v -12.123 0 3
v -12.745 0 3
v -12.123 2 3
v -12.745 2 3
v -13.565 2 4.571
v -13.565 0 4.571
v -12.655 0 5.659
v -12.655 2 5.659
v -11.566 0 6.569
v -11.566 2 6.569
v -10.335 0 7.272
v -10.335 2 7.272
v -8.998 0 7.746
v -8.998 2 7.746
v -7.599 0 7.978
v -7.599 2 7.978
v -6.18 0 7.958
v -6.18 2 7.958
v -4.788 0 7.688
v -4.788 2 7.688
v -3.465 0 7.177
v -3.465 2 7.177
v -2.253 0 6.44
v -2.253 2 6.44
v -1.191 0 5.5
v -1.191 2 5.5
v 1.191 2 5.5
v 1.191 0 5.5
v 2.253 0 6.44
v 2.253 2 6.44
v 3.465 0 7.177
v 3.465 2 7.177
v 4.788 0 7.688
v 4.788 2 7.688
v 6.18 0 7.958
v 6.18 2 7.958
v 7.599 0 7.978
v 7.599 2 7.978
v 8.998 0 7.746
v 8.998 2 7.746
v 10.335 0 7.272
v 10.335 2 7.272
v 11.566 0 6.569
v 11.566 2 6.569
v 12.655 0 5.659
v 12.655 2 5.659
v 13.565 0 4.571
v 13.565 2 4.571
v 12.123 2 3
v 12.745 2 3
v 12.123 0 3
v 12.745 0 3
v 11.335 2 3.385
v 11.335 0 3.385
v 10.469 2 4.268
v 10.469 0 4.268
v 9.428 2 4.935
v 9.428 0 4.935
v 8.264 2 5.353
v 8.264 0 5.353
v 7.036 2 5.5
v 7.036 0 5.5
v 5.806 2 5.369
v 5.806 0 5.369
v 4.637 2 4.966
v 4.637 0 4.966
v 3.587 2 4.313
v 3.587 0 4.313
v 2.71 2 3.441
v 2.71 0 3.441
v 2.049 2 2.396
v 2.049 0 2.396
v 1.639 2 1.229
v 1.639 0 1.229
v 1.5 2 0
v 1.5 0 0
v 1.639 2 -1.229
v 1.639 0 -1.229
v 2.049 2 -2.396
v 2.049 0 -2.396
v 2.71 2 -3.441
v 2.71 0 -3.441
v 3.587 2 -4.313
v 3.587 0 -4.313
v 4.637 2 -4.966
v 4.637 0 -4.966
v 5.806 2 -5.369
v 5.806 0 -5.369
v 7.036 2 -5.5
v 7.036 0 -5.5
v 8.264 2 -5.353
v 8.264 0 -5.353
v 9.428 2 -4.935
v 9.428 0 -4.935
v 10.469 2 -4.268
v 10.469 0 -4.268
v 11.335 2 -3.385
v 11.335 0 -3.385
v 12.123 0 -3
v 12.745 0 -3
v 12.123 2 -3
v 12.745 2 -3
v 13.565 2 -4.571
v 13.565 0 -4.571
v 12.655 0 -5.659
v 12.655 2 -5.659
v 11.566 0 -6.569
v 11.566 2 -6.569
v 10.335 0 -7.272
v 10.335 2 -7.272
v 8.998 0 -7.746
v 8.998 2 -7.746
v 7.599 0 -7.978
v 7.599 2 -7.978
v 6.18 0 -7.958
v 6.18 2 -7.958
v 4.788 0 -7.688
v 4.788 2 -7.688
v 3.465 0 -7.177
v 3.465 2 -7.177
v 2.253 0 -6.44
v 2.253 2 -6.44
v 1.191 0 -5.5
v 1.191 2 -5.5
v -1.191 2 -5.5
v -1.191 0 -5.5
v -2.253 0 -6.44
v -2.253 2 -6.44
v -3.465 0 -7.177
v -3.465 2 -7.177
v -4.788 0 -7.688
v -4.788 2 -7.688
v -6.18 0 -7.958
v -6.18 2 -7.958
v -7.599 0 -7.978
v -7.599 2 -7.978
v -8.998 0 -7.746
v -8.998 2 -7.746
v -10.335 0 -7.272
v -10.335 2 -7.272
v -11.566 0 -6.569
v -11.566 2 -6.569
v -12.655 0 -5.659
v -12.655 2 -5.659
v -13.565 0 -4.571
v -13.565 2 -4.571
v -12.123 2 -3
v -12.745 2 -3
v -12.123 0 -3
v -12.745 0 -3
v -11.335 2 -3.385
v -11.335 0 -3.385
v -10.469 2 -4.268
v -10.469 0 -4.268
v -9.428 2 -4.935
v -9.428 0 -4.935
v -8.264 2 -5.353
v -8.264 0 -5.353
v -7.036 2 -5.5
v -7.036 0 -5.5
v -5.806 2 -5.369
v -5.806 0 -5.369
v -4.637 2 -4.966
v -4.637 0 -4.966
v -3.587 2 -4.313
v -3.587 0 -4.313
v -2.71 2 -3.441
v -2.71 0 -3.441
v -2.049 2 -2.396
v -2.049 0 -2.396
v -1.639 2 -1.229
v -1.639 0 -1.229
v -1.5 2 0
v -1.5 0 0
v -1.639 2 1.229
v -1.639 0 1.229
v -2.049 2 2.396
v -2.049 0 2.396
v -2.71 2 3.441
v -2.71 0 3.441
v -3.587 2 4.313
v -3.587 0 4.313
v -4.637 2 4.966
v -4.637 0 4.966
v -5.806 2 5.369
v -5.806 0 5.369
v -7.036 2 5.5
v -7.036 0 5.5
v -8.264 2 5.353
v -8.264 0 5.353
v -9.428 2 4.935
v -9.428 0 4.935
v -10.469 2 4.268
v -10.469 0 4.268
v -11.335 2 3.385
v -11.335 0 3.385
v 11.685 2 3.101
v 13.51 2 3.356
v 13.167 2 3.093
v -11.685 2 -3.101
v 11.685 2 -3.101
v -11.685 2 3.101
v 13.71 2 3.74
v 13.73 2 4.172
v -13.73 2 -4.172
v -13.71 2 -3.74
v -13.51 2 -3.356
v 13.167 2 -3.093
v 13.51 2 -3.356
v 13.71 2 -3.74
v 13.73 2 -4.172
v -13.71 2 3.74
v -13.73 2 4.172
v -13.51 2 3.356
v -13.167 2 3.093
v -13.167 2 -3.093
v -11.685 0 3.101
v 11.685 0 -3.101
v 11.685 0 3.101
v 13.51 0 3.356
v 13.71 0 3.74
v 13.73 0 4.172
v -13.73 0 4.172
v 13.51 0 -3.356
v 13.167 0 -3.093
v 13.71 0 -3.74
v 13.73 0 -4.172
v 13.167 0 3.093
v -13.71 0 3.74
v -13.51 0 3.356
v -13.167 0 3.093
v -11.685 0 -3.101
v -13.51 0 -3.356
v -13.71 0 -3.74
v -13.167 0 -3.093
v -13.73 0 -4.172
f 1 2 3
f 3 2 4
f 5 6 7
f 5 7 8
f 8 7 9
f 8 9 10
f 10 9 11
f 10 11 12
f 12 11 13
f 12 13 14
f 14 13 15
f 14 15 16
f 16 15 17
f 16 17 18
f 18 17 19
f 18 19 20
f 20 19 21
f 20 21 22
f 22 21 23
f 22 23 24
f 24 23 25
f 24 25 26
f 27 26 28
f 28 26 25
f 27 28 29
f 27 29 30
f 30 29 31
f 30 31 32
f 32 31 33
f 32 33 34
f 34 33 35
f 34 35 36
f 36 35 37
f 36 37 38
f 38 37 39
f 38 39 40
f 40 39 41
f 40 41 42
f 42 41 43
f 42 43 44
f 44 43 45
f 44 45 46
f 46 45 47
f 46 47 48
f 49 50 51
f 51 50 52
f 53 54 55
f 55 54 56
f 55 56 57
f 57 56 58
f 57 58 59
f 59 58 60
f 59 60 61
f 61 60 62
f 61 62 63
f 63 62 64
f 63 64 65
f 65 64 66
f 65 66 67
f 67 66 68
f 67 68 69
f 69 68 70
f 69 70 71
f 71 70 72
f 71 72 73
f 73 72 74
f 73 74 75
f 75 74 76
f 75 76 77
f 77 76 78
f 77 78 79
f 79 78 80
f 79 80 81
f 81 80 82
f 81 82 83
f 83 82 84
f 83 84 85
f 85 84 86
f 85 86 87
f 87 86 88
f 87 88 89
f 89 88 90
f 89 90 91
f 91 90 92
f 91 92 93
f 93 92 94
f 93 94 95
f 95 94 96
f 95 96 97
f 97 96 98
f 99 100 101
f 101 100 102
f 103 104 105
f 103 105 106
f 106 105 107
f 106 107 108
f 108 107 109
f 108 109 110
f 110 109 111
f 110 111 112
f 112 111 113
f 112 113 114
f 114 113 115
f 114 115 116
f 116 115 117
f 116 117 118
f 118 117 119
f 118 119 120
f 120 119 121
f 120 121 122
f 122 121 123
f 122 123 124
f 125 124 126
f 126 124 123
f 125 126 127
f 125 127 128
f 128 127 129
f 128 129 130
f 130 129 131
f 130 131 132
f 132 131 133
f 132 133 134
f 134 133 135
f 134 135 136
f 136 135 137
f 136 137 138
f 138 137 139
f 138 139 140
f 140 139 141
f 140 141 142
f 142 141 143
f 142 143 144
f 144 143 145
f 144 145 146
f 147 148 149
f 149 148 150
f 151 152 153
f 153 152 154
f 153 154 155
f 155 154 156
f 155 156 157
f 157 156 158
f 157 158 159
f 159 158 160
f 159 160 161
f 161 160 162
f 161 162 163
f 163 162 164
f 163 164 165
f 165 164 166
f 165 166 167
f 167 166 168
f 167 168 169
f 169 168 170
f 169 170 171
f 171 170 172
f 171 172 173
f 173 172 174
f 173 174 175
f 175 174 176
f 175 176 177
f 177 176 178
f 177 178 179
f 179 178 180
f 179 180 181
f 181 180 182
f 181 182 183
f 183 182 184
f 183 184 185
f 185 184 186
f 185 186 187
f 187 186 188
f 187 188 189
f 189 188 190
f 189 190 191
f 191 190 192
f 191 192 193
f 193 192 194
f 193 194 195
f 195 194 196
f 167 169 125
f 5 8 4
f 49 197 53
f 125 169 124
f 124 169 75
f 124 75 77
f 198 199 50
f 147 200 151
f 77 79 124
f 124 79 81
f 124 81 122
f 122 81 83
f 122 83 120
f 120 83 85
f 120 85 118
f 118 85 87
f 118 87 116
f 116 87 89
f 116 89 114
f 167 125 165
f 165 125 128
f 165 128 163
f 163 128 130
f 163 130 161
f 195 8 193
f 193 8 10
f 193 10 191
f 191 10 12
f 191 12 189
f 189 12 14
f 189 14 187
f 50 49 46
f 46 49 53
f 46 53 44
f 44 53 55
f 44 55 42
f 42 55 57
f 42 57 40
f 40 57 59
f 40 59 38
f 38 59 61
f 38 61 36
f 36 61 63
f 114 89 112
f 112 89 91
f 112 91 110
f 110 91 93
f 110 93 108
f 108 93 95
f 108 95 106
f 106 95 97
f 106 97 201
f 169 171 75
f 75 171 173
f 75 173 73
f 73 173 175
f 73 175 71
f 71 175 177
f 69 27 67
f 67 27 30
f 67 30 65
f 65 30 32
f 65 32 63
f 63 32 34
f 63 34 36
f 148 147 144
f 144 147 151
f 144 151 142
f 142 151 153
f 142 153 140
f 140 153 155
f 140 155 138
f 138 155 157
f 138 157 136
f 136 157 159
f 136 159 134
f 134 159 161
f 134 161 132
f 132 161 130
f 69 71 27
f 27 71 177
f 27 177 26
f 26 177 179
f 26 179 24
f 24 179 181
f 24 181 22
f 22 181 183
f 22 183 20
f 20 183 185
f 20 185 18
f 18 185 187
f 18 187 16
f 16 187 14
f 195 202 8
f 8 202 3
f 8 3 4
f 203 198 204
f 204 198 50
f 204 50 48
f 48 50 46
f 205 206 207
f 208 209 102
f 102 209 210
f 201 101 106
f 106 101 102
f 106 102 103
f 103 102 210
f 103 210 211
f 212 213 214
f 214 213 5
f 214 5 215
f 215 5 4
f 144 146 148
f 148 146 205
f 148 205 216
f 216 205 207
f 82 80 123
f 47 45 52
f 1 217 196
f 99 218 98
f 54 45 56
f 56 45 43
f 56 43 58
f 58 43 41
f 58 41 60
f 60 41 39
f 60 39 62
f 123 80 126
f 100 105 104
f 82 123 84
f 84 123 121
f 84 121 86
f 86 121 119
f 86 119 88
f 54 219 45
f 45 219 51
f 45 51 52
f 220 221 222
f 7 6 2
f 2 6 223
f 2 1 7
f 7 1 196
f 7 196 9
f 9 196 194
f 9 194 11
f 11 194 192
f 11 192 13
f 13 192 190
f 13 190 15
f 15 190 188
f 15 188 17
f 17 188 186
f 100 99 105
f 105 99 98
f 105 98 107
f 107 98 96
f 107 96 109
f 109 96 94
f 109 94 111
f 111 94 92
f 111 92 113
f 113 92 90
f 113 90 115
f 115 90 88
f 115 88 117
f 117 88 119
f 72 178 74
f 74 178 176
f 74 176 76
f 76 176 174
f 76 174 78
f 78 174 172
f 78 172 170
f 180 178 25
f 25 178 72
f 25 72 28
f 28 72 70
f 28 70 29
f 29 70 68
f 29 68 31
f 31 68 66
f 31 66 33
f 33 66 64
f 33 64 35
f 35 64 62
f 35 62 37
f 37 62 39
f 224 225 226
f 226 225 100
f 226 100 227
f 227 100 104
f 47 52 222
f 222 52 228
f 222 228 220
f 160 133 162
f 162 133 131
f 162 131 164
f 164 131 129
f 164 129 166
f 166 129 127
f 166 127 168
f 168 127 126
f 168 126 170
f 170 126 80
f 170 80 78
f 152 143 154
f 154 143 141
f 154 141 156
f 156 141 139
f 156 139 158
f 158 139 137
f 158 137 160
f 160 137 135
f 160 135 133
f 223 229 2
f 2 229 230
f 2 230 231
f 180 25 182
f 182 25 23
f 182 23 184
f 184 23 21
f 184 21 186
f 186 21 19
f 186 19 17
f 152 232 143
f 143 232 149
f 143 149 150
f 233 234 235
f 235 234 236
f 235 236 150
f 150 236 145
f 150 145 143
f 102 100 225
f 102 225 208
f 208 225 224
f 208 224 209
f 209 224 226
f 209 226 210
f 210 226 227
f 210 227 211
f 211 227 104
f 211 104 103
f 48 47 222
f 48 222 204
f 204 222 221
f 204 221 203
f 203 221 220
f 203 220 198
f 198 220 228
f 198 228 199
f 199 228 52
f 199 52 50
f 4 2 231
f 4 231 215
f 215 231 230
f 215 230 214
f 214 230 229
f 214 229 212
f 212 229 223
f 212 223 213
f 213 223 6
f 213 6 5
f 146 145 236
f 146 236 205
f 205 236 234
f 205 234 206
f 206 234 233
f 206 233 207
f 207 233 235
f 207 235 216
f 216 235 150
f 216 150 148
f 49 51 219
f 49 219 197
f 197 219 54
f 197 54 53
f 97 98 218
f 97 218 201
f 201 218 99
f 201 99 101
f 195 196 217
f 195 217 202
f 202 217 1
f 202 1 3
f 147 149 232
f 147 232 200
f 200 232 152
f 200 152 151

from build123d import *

# Parameters (mm, degrees)
BOSS_EXTRUDE1_DEPTH = 2
FILLET1_R           = 1
FILLET2_R           = 1


with BuildPart() as part:
    # Sketch1 → Boss-Extrude1 (new body)
    with BuildSketch(Plane(origin=(0, 0, 0), x_dir=(1, 0, 0), z_dir=(0, 1, 0))):
        with BuildLine():
            Line((11.609772229, 3), (14.416198487, 3))
            ThreePointArc((14.416198487, 3), (9.671814624, 7.540650278), (3.127016654, 7))
            Line((3.127016654, 7), (3.127016654, 5.5))
            Line((3.127016654, 5.5), (7, 5.5))
            ThreePointArc((7, 5.5), (9.62202212, 4.834769901), (11.609772229, 3))
        make_face()
        with BuildLine():
            Line((3.127016654, -5.5), (3.127016654, -7))
            ThreePointArc((3.127016654, -7), (9.671814624, -7.540650278), (14.416198487, -3))
            Line((14.416198487, -3), (11.609772229, -3))
            ThreePointArc((11.609772229, -3), (9.62202212, -4.834769901), (7, -5.5))
            Line((7, -5.5), (3.127016654, -5.5))
        make_face()
        with BuildLine():
            Line((3.127016654, -5.5), (1.190524981, -5.5))
            ThreePointArc((1.190524981, -5.5), (2.101020514, -6.32455532), (3.127016654, -7))
            Line((3.127016654, -7), (3.127016654, -5.5))
        make_face()
        with BuildLine():
            ThreePointArc((0, -3.872983346), (0.543804652, -4.72414454), (1.190524981, -5.5))
            Line((1.190524981, -5.5), (3.127016654, -5.5))
            Line((3.127016654, -5.5), (3.127016654, -3.905124838))
            ThreePointArc((3.127016654, -3.905124838), (2.734545947, -3.472160958), (2.390227771, -3))
            Line((2.390227771, -3), (0.416198487, -3))
            ThreePointArc((0.416198487, -3), (0.221303185, -3.442786708), (0, -3.872983346))
        make_face()
        with BuildLine():
            ThreePointArc((1, 0), (0.85269342, -1.5281381), (0.416198487, -3))
            Line((0.416198487, -3), (2.390227771, -3))
            ThreePointArc((2.390227771, -3), (1.5, 0), (2.390227771, 3))
            Line((2.390227771, 3), (0.416198487, 3))
            ThreePointArc((0.416198487, 3), (0.85269342, 1.5281381), (1, 0))
        make_face()
        with BuildLine():
            ThreePointArc((0, 3.872983346), (0.221303185, 3.442786708), (0.416198487, 3))
            Line((0.416198487, 3), (2.390227771, 3))
            ThreePointArc((2.390227771, 3), (2.734545947, 3.472160958), (3.127016654, 3.905124838))
            Line((3.127016654, 3.905124838), (3.127016654, 5.5))
            Line((3.127016654, 5.5), (1.190524981, 5.5))
            ThreePointArc((1.190524981, 5.5), (0.543804652, 4.72414454), (0, 3.872983346))
        make_face()
        with BuildLine():
            Line((1.190524981, 5.5), (-1.190524981, 5.5))
            ThreePointArc((-1.190524981, 5.5), (-0.543804652, 4.72414454), (0, 3.872983346))
            ThreePointArc((0, 3.872983346), (0.543804652, 4.72414454), (1.190524981, 5.5))
        make_face()
        with BuildLine():
            Line((-1.190524981, 5.5), (-3.127016654, 5.5))
            Line((-3.127016654, 5.5), (-3.127016654, 3.905124838))
            ThreePointArc((-3.127016654, 3.905124838), (-2.734545947, 3.472160958), (-2.390227771, 3))
            Line((-2.390227771, 3), (-0.416198487, 3))
            ThreePointArc((-0.416198487, 3), (-0.221303185, 3.442786708), (0, 3.872983346))
            ThreePointArc((0, 3.872983346), (-0.543804652, 4.72414454), (-1.190524981, 5.5))
        make_face()
        with BuildLine():
            ThreePointArc((-1.5, 0), (-1.727251795, -1.564648961), (-2.390227771, -3))
            Line((-2.390227771, -3), (-0.416198487, -3))
            ThreePointArc((-0.416198487, -3), (-1, 0), (-0.416198487, 3))
            Line((-0.416198487, 3), (-2.390227771, 3))
            ThreePointArc((-2.390227771, 3), (-1.727251795, 1.564648961), (-1.5, 0))
        make_face()
        with BuildLine():
            Line((-3.127016654, -3.905124838), (-3.127016654, -5.5))
            Line((-3.127016654, -5.5), (-1.190524981, -5.5))
            ThreePointArc((-1.190524981, -5.5), (-0.543804652, -4.72414454), (0, -3.872983346))
            ThreePointArc((0, -3.872983346), (-0.221303185, -3.442786708), (-0.416198487, -3))
            Line((-0.416198487, -3), (-2.390227771, -3))
            ThreePointArc((-2.390227771, -3), (-2.734545947, -3.472160958), (-3.127016654, -3.905124838))
        make_face()
        with BuildLine():
            ThreePointArc((0, -3.872983346), (-0.543804652, -4.72414454), (-1.190524981, -5.5))
            Line((-1.190524981, -5.5), (1.190524981, -5.5))
            ThreePointArc((1.190524981, -5.5), (0.543804652, -4.72414454), (0, -3.872983346))
        make_face()
        with BuildLine():
            ThreePointArc((-0.416198487, 3), (-1, 0), (-0.416198487, -3))
            Line((-0.416198487, -3), (0.416198487, -3))
            ThreePointArc((0.416198487, -3), (0.85269342, -1.5281381), (1, 0))
            ThreePointArc((1, 0), (0.85269342, 1.5281381), (0.416198487, 3))
            Line((0.416198487, 3), (-0.416198487, 3))
        make_face()
        with BuildLine():
            ThreePointArc((0, 3.872983346), (-0.221303185, 3.442786708), (-0.416198487, 3))
            Line((-0.416198487, 3), (0.416198487, 3))
            ThreePointArc((0.416198487, 3), (0.221303185, 3.442786708), (0, 3.872983346))
        make_face()
        with BuildLine():
            ThreePointArc((-0.416198487, -3), (-0.221303185, -3.442786708), (0, -3.872983346))
            ThreePointArc((0, -3.872983346), (0.221303185, -3.442786708), (0.416198487, -3))
            Line((0.416198487, -3), (-0.416198487, -3))
        make_face()
        with BuildLine():
            Line((-3.127016654, 5.5), (-7, 5.5))
            ThreePointArc((-7, 5.5), (-4.905744358, 5.085675305), (-3.127016654, 3.905124838))
            Line((-3.127016654, 3.905124838), (-3.127016654, 5.5))
        make_face()
        with BuildLine():
            Line((-14.416198487, 3), (-11.609772229, 3))
            ThreePointArc((-11.609772229, 3), (-9.62202212, 4.834769901), (-7, 5.5))
            Line((-7, 5.5), (-3.127016654, 5.5))
            Line((-3.127016654, 5.5), (-3.127016654, 7))
            ThreePointArc((-3.127016654, 7), (-9.671814624, 7.540650278), (-14.416198487, 3))
        make_face()
        with BuildLine():
            Line((-3.127016654, 7), (-3.127016654, 5.5))
            Line((-3.127016654, 5.5), (-1.190524981, 5.5))
            ThreePointArc((-1.190524981, 5.5), (-2.101020514, 6.32455532), (-3.127016654, 7))
        make_face()
        with BuildLine():
            Line((3.127016654, 5.5), (3.127016654, 7))
            ThreePointArc((3.127016654, 7), (2.101020514, 6.32455532), (1.190524981, 5.5))
            Line((1.190524981, 5.5), (3.127016654, 5.5))
        make_face()
        with BuildLine():
            Line((-1.190524981, -5.5), (-3.127016654, -5.5))
            Line((-3.127016654, -5.5), (-3.127016654, -7))
            ThreePointArc((-3.127016654, -7), (-2.101020514, -6.32455532), (-1.190524981, -5.5))
        make_face()
        with BuildLine():
            Line((-3.127016654, -5.5), (-7, -5.5))
            ThreePointArc((-7, -5.5), (-9.62202212, -4.834769901), (-11.609772229, -3))
            Line((-11.609772229, -3), (-14.416198487, -3))
            ThreePointArc((-14.416198487, -3), (-9.671814624, -7.540650278), (-3.127016654, -7))
            Line((-3.127016654, -7), (-3.127016654, -5.5))
        make_face()
        with BuildLine():
            ThreePointArc((-3.127016654, -3.905124838), (-4.905744358, -5.085675305), (-7, -5.5))
            Line((-7, -5.5), (-3.127016654, -5.5))
            Line((-3.127016654, -5.5), (-3.127016654, -3.905124838))
        make_face()
        with BuildLine():
            Line((7, 5.5), (3.127016654, 5.5))
            Line((3.127016654, 5.5), (3.127016654, 3.905124838))
            ThreePointArc((3.127016654, 3.905124838), (4.905744358, 5.085675305), (7, 5.5))
        make_face()
        with BuildLine():
            Line((3.127016654, -3.905124838), (3.127016654, -5.5))
            Line((3.127016654, -5.5), (7, -5.5))
            ThreePointArc((7, -5.5), (4.905744358, -5.085675305), (3.127016654, -3.905124838))
        make_face()
    extrude(amount=BOSS_EXTRUDE1_DEPTH)

    # Fillet1
    fillet1_edges = [part.edges().sort_by_distance(p)[0] for p in [
        (-14.416198487, 1, -3),
        (14.416198487, 1, -3),
        (14.416198487, 1, 3),
        (-14.416198487, 1, 3),
    ]]
    fillet(fillet1_edges, radius=FILLET1_R)

    # Fillet2
    fillet2_edges = [part.edges().sort_by_distance(p)[0] for p in [
        (-11.609772229, 1, 3),
        (-11.609772229, 1, -3),
        (11.609772229, 1, -3),
        (11.609772229, 1, 3),
    ]]
    fillet(fillet2_edges, radius=FILLET2_R)


solid = part.part
